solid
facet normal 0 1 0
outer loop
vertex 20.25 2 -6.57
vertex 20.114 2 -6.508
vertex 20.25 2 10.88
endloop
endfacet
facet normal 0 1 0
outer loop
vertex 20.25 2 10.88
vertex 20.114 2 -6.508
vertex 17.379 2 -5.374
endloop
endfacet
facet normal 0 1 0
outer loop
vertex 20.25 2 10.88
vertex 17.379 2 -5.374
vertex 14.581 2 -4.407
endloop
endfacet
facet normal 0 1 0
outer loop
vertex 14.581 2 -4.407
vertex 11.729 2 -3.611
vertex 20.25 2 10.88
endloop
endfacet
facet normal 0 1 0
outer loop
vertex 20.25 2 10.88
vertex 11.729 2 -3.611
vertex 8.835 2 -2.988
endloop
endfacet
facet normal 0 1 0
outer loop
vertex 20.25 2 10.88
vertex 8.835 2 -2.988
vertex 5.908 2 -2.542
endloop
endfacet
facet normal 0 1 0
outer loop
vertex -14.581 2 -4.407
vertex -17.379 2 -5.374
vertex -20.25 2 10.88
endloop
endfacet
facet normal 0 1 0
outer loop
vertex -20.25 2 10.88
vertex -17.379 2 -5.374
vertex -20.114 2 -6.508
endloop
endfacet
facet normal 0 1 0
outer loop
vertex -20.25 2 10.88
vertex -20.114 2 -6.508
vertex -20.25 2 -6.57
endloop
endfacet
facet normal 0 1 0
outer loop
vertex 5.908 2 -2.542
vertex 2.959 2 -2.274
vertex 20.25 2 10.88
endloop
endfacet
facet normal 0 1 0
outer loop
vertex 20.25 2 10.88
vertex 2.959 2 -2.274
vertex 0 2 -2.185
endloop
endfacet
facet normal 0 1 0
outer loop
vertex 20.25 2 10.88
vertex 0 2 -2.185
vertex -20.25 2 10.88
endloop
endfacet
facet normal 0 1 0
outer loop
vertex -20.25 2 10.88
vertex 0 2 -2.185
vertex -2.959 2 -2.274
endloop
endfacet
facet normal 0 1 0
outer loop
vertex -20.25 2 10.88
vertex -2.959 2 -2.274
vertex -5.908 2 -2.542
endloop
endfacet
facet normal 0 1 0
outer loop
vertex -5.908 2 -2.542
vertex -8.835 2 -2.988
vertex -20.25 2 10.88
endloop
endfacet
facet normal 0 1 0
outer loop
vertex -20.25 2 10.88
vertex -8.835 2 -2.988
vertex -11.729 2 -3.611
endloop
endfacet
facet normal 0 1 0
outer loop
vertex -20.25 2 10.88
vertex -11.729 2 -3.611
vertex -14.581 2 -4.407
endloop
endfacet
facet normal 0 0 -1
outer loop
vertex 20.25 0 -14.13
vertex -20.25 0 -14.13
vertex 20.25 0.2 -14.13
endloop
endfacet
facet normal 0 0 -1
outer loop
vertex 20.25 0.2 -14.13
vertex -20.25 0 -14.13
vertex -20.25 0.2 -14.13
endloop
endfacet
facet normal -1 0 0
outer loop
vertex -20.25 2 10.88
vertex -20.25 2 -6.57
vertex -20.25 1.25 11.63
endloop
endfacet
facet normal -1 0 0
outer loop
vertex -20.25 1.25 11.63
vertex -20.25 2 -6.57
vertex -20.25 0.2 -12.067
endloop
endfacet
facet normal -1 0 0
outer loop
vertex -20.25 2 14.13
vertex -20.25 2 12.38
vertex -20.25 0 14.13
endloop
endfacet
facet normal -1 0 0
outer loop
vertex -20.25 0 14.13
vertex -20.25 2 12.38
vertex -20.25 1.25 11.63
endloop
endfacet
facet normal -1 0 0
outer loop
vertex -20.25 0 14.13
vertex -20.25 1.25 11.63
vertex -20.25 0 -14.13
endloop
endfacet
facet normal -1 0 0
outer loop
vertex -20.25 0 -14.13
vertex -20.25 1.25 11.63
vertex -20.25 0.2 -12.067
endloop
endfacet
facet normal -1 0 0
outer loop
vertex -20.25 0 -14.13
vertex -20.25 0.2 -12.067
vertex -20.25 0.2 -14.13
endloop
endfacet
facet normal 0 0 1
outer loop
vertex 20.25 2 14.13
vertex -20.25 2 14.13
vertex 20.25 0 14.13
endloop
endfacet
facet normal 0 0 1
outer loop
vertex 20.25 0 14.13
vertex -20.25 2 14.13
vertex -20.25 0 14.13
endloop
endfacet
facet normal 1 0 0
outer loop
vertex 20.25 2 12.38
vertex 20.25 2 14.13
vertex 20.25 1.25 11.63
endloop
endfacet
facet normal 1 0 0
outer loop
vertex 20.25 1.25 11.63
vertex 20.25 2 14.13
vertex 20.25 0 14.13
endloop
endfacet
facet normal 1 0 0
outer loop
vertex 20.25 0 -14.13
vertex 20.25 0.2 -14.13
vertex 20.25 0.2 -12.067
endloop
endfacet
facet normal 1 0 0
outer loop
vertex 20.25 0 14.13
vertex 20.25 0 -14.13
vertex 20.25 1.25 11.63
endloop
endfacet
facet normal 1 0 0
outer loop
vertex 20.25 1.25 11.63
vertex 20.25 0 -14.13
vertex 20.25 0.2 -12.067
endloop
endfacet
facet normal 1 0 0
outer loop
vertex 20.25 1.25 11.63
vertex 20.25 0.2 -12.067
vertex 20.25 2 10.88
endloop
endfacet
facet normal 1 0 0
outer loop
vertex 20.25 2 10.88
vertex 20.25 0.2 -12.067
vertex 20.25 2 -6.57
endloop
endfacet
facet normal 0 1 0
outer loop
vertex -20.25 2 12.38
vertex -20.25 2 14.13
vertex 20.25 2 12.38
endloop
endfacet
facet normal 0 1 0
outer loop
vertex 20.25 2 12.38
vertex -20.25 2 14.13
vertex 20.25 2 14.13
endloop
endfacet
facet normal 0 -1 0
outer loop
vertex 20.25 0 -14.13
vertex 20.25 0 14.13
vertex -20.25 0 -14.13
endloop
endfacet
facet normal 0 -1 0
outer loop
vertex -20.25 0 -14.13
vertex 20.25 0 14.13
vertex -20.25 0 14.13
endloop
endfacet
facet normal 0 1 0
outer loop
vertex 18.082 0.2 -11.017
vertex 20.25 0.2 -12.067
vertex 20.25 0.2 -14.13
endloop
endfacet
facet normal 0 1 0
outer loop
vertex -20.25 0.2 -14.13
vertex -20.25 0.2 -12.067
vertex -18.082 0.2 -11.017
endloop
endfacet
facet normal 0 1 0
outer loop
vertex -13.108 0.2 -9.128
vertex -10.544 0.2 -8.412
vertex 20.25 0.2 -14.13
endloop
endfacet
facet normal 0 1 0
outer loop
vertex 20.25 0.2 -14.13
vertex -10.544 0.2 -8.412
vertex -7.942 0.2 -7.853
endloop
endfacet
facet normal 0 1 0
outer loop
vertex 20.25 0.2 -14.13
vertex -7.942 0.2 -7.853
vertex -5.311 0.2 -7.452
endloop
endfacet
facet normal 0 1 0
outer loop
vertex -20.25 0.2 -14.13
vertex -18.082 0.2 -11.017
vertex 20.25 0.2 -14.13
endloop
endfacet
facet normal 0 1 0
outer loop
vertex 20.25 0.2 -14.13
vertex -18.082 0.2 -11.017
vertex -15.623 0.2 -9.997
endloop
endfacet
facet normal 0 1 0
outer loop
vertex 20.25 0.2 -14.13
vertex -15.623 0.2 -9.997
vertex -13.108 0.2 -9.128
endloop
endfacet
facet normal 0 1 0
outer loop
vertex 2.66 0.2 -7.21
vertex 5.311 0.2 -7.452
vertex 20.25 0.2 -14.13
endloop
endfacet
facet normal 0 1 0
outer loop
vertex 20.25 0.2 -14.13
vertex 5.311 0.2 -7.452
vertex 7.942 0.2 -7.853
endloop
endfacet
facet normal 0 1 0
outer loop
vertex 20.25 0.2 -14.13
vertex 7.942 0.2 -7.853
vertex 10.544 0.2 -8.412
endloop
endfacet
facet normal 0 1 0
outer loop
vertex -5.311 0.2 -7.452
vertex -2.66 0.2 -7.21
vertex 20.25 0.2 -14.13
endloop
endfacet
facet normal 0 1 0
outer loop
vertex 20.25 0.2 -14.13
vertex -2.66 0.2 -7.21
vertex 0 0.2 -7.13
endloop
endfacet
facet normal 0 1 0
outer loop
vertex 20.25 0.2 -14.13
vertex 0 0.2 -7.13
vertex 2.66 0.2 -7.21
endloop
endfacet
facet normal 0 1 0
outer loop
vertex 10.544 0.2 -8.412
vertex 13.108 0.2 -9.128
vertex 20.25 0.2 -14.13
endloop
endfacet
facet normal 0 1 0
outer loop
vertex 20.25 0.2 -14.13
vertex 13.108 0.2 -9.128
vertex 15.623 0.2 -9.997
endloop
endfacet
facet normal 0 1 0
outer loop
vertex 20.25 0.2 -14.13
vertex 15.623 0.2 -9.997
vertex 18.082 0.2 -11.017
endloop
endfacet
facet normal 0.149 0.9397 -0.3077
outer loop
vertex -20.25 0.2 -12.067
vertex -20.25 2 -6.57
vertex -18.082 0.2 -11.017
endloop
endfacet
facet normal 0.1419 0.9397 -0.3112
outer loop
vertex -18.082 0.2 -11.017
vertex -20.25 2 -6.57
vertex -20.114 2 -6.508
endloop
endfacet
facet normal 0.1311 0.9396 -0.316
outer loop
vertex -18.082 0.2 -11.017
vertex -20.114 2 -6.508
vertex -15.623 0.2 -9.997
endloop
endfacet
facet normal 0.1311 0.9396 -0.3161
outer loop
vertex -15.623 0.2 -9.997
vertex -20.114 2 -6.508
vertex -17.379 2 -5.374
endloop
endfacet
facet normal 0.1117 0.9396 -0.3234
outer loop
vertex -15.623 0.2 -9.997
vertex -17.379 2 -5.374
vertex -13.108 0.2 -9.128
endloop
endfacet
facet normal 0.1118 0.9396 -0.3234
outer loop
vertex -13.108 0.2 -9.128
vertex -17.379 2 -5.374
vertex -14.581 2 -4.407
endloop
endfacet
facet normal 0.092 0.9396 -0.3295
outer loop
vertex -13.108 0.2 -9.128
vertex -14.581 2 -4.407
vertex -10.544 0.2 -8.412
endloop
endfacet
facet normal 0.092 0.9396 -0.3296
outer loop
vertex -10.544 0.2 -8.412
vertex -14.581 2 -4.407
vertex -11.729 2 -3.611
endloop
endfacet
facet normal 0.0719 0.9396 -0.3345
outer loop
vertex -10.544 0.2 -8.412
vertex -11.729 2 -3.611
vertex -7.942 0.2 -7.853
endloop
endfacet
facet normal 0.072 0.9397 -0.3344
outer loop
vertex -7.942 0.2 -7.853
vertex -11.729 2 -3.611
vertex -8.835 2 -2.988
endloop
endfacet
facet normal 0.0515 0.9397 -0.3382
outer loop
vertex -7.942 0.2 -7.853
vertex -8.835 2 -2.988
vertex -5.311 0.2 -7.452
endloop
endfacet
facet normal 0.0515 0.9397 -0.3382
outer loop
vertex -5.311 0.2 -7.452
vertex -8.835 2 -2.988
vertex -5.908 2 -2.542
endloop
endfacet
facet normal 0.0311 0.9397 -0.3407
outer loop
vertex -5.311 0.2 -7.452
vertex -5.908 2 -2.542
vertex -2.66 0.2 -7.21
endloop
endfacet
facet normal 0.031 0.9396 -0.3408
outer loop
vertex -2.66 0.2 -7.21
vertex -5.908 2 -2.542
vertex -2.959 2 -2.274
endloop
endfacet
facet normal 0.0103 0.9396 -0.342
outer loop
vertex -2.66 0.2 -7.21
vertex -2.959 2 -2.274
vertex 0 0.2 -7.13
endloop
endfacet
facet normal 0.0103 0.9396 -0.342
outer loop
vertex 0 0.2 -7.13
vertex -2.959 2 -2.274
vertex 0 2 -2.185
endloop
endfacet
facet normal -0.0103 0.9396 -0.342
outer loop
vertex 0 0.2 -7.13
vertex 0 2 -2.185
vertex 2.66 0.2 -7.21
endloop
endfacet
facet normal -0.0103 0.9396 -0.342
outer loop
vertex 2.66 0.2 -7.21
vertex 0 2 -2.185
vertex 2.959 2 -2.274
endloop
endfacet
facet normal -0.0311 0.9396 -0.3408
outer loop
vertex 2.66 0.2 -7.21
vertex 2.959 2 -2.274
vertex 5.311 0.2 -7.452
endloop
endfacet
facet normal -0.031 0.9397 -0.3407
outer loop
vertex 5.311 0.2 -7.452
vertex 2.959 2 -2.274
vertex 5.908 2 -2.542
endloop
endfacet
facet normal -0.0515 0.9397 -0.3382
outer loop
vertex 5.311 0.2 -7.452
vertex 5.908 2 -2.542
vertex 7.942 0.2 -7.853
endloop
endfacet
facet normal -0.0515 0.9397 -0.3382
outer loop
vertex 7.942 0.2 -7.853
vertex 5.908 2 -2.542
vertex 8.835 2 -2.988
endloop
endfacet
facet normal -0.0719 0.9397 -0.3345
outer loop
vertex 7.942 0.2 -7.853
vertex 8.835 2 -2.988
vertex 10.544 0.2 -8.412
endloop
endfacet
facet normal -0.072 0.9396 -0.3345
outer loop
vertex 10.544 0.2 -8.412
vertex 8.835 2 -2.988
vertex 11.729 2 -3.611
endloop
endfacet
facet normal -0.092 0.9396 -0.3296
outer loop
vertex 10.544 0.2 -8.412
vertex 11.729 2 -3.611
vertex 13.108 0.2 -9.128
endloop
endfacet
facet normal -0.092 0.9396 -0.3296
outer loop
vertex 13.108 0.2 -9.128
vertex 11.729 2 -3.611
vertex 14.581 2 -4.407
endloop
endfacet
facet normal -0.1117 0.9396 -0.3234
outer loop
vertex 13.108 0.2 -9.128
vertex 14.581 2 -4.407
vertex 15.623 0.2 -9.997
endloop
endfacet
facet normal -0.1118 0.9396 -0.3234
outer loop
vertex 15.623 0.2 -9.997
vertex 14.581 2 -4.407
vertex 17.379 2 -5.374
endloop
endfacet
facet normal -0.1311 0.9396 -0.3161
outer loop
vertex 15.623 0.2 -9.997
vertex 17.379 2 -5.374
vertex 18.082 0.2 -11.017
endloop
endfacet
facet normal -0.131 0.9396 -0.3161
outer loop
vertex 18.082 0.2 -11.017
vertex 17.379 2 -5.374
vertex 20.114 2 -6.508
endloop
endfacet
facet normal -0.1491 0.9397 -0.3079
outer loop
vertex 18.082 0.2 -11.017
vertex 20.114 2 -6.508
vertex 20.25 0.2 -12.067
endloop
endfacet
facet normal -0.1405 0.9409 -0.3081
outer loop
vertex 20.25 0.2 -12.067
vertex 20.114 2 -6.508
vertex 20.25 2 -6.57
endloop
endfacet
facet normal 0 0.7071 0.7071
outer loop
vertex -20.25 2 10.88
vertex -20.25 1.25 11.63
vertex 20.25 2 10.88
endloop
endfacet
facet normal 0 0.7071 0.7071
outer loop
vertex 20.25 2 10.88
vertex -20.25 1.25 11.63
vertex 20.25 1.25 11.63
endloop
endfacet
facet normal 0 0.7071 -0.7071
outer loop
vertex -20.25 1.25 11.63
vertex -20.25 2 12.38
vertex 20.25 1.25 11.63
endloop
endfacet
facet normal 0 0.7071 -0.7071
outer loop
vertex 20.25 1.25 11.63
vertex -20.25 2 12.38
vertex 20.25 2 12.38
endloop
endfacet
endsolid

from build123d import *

# Parameters (mm, degrees)
SKETCH1_W           = 40.5
SKETCH1_H           = 28.26
BOSS_EXTRUDE1_DEPTH = 2
SKETCH2_R           = 44
CUT_EXTRUDE1_DEPTH  = 1.8
CHAMFER1_SIZE       = 4.945459355
CHAMFER1_SIZE_2     = 1.8
CUT_EXTRUDE2_DEPTH  = 43.940737069


with BuildPart() as part:
    # Sketch1 → Boss-Extrude1 (new body)
    with BuildSketch(Plane(origin=(0, 0, 0), x_dir=(1, 0, 0), z_dir=(0, 1, 0))):
        Rectangle(SKETCH1_W, SKETCH1_H)
    extrude(amount=BOSS_EXTRUDE1_DEPTH)

    # Sketch2 → Cut-Extrude1 (cut)
    with BuildSketch(Plane(origin=(0, 2, 0), x_dir=(1, 0, 0), z_dir=(0, 1, 0))):
        with Locations((0, 51.13)):
            Circle(SKETCH2_R)
    extrude(amount=-CUT_EXTRUDE1_DEPTH, mode=Mode.SUBTRACT)

    # Chamfer1
    # the kernel refuses this chamfer: 4.945459355, 1.8 mm, written as the material it takes off along each edge
    with BuildSketch(Plane(origin=(0, 2, -51.13), x_dir=(-0.6960446295726113, 0, 0.7179985192485611), z_dir=(-0.7179985192485611, 0, -0.6960446295726113))) as chamfer1_piece_1_section:
        Polygon((44 + CHAMFER1_SIZE, 0), (44, -CHAMFER1_SIZE_2), (44, 0), align=None)
    chamfer1_piece_1 = revolve(axis=Axis((0, 2, -51.13), (0, 1, 0)), revolution_arc=88.221038487, mode=Mode.PRIVATE)
    chamfer1_piece_1 = split(chamfer1_piece_1, bisect_by=Plane(origin=(0, 0.2, -4.588848893), z_dir=(0, 1, 0)), keep=Keep.TOP, mode=Mode.PRIVATE)
    add(chamfer1_piece_1, mode=Mode.SUBTRACT)

    # Sketch3 → Cut-Extrude2 (cut, through all)
    with BuildSketch(Plane(origin=(20.25, 0, 0), x_dir=(0, 0, -1), z_dir=(1, 0, 0))):
        Polygon((-12.38, 2), (-11.63, 1.25), (-10.88, 2), (-10.88, 3.484474426), (-12.38, 3.484474426), align=None)
    extrude(amount=-CUT_EXTRUDE2_DEPTH, mode=Mode.SUBTRACT)


solid = part.part
